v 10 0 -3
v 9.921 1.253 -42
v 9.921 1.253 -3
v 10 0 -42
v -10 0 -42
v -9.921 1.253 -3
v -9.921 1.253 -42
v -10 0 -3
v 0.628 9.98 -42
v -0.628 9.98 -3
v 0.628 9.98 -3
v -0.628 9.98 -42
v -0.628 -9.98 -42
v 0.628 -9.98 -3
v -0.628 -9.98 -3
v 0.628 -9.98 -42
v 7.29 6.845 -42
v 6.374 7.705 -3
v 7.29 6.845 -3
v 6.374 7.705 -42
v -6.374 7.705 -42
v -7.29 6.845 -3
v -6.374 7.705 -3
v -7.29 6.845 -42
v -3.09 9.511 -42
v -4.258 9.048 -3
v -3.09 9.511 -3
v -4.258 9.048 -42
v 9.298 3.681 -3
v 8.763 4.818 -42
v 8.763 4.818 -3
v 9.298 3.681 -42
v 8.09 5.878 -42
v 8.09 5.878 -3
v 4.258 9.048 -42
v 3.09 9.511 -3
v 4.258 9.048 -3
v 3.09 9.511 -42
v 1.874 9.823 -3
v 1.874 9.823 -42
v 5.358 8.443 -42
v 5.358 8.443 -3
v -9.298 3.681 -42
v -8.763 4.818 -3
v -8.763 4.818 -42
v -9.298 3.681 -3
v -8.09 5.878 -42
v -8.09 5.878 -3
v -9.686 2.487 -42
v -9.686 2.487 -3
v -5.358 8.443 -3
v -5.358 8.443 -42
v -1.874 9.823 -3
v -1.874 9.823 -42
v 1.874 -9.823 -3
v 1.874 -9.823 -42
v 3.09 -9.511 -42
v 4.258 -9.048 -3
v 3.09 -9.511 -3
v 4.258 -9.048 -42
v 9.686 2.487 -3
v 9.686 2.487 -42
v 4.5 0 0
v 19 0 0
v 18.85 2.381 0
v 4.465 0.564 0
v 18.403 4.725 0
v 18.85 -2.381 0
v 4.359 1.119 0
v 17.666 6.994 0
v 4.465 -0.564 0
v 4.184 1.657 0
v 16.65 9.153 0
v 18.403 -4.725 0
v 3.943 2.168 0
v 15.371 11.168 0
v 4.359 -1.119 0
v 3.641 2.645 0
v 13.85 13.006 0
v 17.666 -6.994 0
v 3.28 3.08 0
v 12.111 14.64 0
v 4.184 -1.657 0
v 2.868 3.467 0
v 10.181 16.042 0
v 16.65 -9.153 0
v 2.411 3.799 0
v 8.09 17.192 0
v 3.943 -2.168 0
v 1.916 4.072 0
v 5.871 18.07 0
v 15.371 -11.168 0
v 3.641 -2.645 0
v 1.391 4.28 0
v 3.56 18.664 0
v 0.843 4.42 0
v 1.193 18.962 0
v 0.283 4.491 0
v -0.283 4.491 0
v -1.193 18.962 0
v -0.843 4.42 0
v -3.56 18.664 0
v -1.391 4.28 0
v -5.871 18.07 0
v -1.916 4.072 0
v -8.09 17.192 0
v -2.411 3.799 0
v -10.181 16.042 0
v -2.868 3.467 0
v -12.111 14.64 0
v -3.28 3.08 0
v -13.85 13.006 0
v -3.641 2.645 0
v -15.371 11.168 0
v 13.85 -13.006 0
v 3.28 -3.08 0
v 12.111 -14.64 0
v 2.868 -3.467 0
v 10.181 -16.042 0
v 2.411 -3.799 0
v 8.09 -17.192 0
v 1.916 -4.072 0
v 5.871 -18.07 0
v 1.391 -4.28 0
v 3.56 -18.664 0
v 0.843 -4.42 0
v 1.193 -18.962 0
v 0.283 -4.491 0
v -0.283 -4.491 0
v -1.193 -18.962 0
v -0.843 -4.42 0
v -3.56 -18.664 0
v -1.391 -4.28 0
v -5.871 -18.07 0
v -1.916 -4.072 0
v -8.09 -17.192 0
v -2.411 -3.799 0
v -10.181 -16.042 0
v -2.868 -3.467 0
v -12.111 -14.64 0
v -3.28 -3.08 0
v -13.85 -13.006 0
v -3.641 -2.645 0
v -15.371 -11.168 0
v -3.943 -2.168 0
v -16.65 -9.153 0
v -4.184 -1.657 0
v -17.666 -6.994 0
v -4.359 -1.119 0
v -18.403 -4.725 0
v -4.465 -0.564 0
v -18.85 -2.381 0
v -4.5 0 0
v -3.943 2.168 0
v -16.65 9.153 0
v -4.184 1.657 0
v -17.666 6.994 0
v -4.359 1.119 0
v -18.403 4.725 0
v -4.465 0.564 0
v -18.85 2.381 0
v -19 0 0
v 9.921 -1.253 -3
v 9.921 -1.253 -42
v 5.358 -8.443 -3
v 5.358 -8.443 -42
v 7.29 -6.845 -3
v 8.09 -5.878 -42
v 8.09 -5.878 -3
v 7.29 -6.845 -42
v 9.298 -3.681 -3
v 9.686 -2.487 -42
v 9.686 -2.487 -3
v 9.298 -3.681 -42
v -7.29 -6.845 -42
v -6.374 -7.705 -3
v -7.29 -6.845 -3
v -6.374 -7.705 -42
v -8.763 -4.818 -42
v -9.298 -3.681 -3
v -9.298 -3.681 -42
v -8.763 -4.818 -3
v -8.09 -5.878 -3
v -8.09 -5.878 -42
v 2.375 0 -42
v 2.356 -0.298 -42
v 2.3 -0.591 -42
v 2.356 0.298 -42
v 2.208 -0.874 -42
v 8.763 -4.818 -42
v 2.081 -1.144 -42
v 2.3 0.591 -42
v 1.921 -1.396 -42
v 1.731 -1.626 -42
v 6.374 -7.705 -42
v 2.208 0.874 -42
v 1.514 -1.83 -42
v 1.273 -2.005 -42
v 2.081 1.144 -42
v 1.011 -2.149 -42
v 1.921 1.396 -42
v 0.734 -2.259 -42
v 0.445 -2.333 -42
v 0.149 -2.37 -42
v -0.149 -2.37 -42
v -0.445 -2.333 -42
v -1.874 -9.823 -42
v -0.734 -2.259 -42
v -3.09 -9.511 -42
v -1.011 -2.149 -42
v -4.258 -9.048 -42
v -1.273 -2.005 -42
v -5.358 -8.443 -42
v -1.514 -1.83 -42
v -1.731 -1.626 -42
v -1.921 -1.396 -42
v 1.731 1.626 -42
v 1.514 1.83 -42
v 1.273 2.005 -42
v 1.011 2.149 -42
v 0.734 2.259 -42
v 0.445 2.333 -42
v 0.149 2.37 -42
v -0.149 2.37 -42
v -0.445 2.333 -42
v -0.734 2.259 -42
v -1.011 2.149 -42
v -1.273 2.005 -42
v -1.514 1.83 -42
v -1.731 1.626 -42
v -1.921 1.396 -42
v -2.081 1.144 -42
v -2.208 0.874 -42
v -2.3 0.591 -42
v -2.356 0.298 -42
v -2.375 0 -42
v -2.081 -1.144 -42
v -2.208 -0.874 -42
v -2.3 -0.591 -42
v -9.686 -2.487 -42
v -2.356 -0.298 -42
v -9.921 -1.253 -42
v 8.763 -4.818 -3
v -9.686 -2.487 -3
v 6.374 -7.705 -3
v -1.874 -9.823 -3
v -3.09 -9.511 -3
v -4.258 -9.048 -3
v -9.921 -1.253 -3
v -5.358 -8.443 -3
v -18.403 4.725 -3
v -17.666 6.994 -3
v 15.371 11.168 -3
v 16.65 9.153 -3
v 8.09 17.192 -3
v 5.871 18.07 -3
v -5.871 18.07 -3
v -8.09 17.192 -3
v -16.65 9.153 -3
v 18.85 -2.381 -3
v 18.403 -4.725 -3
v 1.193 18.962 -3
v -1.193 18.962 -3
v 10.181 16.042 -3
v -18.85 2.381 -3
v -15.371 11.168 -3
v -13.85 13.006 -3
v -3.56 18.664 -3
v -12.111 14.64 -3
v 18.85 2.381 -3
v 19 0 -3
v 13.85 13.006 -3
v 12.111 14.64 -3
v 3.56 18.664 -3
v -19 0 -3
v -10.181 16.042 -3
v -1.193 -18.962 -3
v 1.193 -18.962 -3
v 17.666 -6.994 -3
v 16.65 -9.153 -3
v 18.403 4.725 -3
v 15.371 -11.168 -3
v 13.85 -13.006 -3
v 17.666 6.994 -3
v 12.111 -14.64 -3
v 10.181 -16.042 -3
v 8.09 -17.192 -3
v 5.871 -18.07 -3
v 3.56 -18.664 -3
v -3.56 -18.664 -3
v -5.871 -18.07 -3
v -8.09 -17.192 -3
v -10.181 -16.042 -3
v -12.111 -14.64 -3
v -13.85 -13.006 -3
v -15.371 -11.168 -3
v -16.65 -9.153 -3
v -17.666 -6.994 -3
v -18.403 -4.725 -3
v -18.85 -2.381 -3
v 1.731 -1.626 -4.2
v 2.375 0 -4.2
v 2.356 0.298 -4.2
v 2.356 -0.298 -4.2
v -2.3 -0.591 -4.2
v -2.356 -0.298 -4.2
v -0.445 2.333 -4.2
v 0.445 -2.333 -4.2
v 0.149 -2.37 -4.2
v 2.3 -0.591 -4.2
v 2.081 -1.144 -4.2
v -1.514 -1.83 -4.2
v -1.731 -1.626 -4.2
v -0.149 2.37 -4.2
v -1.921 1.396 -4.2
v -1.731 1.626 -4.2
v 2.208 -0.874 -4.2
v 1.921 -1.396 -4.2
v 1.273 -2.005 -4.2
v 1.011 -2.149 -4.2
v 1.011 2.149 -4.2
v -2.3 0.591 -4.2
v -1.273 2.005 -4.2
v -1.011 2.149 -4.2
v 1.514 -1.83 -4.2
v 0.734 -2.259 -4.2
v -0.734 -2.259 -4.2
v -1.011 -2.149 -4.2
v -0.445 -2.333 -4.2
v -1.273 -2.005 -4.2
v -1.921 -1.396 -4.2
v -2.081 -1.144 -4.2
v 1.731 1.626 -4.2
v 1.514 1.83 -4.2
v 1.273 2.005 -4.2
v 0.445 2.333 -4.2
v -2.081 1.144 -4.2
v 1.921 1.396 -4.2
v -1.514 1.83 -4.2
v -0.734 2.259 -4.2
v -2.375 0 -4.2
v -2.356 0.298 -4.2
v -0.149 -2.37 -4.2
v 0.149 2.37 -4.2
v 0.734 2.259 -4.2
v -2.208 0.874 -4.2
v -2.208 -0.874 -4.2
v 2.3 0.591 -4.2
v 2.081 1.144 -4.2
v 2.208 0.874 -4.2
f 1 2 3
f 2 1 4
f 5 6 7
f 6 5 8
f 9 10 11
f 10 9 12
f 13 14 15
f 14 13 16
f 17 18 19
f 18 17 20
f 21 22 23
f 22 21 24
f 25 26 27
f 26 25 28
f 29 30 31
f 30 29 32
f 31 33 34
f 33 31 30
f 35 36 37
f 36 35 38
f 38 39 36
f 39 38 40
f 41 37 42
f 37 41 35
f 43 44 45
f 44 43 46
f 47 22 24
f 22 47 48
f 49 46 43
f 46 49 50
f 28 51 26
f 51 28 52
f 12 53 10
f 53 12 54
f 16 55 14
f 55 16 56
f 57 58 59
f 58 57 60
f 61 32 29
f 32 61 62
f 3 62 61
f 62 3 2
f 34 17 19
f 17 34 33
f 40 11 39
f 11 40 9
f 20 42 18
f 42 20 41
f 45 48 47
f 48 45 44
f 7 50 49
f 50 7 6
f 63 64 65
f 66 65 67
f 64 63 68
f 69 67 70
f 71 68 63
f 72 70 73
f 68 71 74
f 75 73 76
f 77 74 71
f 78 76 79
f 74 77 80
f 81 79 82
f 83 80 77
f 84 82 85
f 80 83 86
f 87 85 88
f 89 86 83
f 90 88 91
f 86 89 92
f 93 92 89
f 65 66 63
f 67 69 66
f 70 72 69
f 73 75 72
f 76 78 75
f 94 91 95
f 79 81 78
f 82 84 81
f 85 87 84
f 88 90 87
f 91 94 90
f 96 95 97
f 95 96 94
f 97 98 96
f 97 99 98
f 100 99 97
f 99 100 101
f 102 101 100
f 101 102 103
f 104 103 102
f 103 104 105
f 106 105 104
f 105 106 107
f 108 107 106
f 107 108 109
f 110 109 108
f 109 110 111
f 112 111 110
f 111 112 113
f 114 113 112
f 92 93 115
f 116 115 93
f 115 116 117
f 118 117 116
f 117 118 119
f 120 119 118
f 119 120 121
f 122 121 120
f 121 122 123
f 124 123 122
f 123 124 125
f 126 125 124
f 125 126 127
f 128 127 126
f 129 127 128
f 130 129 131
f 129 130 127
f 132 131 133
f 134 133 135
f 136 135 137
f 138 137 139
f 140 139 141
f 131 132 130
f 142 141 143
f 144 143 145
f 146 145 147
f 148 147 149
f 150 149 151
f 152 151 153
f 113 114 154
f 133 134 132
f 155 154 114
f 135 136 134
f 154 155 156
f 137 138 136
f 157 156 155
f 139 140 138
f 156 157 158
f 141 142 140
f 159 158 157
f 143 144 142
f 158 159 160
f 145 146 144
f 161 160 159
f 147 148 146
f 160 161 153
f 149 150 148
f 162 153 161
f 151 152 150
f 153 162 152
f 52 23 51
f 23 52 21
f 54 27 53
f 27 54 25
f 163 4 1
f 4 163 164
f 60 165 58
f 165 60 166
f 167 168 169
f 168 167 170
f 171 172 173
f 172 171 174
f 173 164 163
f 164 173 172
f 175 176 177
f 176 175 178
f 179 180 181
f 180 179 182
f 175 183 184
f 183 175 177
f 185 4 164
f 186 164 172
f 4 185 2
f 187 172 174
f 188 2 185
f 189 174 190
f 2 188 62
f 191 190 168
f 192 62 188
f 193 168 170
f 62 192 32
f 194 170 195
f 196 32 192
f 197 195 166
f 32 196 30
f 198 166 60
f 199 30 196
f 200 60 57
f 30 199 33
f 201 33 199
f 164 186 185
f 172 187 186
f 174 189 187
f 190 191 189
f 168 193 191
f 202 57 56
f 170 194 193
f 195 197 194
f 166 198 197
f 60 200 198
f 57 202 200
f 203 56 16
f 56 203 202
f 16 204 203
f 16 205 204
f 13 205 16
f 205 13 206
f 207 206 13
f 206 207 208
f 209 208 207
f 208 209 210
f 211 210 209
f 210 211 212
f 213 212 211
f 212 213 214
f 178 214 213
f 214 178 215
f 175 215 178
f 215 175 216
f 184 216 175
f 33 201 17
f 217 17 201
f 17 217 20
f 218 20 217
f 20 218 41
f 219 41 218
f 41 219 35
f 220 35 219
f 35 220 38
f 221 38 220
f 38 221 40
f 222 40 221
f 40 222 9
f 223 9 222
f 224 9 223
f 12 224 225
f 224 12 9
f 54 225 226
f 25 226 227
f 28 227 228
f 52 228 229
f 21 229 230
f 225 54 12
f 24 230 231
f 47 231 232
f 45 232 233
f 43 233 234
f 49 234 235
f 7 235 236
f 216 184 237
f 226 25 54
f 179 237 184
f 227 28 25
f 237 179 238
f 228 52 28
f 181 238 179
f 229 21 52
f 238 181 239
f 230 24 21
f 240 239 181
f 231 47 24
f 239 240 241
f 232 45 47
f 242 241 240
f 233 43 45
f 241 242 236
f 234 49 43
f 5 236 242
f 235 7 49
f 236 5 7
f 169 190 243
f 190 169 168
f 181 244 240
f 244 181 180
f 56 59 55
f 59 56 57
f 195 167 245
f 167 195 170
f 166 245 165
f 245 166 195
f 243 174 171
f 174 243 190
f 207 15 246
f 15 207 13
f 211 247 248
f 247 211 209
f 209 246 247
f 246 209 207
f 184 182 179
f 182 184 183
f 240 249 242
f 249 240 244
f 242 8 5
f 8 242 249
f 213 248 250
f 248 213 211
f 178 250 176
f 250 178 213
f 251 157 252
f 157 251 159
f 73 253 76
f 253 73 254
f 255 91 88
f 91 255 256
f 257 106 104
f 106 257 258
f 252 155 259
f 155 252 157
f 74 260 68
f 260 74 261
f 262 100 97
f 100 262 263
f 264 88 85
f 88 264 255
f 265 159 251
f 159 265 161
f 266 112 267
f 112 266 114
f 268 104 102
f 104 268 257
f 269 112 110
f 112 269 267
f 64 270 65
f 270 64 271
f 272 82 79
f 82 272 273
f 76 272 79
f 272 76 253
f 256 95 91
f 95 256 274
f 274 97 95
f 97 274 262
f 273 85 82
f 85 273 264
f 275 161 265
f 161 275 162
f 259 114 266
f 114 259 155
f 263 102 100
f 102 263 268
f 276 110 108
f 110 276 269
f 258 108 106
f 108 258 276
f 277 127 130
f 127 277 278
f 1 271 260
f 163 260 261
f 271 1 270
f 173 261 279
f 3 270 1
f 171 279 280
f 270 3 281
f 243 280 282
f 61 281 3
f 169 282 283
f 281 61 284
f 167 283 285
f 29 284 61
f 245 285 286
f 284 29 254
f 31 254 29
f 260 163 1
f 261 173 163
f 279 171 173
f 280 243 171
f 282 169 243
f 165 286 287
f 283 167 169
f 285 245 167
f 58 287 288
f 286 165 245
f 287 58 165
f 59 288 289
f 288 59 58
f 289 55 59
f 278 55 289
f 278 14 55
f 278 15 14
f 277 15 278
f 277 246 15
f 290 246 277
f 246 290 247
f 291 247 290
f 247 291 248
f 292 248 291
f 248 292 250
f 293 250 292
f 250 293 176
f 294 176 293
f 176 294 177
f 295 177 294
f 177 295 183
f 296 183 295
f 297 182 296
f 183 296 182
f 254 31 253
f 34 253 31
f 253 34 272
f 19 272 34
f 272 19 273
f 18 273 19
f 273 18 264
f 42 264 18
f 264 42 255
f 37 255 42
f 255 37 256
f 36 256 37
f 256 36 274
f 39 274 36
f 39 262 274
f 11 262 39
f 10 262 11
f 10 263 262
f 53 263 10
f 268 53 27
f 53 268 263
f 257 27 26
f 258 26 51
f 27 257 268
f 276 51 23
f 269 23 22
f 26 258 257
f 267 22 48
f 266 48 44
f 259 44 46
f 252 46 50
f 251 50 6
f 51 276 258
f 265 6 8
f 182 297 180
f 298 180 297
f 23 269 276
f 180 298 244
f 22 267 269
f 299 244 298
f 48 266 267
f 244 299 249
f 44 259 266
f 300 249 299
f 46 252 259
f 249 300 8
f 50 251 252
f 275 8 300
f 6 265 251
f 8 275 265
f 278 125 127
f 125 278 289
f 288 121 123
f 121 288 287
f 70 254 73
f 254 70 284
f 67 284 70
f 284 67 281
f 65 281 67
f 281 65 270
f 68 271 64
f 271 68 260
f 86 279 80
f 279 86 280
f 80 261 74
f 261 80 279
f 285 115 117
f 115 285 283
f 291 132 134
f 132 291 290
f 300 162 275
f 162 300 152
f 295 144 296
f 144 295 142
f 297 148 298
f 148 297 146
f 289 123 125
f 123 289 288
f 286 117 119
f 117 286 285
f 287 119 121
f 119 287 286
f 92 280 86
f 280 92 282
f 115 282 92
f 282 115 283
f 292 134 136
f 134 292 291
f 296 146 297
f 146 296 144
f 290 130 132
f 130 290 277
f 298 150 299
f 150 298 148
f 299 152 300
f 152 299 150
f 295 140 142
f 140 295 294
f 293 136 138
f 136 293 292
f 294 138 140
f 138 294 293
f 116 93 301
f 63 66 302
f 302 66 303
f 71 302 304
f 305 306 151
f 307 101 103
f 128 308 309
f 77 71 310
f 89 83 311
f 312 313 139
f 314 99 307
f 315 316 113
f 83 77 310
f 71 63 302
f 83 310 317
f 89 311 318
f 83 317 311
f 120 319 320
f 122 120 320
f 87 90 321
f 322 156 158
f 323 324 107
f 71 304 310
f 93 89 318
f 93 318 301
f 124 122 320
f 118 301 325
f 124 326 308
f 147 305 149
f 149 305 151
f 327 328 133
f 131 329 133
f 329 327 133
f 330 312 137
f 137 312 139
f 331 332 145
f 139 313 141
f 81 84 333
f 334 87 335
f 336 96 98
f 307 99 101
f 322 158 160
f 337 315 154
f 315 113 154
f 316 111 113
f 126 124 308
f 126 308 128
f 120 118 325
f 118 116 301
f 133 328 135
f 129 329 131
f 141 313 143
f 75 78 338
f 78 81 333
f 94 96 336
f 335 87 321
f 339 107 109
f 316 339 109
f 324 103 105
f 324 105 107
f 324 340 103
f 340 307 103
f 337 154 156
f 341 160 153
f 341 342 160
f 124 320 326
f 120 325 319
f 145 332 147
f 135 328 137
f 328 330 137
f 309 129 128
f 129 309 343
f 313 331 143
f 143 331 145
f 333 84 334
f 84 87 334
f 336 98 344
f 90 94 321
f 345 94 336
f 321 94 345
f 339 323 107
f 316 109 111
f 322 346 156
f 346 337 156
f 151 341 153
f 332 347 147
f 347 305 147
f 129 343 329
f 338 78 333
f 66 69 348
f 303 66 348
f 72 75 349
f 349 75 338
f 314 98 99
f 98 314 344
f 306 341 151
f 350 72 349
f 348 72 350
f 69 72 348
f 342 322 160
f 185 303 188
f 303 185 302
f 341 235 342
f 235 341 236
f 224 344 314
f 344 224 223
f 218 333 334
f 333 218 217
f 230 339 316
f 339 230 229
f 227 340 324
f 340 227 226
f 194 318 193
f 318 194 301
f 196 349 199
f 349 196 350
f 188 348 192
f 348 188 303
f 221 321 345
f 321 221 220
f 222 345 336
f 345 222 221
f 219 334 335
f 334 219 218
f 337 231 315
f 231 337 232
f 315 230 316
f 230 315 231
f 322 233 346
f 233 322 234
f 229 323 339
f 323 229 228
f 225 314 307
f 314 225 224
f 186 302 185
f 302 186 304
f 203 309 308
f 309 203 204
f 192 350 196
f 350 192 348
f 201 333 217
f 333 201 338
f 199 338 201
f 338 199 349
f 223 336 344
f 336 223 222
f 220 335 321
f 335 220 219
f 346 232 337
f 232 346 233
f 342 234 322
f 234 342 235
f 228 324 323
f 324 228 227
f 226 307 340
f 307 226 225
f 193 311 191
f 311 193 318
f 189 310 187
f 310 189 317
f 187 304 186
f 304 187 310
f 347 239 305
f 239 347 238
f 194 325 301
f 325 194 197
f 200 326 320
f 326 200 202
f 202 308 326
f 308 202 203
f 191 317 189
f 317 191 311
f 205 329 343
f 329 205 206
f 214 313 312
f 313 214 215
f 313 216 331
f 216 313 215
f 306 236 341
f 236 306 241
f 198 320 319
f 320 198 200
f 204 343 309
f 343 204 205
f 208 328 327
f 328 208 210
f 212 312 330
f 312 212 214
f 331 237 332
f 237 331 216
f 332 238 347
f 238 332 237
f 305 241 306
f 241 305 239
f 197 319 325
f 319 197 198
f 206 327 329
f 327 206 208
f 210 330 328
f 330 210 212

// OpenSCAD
$fn = 50;


difference() {
	union() {
		translate(v = [0, 0, -42.0000000000]) {
			cylinder(h = 42, r = 10.0000000000);
		}
		translate(v = [0, 0, -3.0000000000]) {
			cylinder(h = 3, r = 19.0000000000);
		}
	}
	union() {
		translate(v = [0, 0, 0]) {
			rotate(a = [0, 0, 0]) {
				difference() {
					union() {
						#translate(v = [0, 0, -42.0000000000]) {
							cylinder(h = 42, r = 2.2500000000);
						}
						#translate(v = [0, 0, -4.2000000000]) {
							cylinder(h = 4.2000000000, r1 = 2.3750000000, r2 = 4.5000000000);
						}
						#translate(v = [0, 0, -42.0000000000]) {
							cylinder(h = 42, r = 2.3750000000);
						}
						#translate(v = [0, 0, -42.0000000000]) {
							cylinder(h = 42, r = 2.2500000000);
						}
					}
					union();
				}
			}
		}
	}
}
